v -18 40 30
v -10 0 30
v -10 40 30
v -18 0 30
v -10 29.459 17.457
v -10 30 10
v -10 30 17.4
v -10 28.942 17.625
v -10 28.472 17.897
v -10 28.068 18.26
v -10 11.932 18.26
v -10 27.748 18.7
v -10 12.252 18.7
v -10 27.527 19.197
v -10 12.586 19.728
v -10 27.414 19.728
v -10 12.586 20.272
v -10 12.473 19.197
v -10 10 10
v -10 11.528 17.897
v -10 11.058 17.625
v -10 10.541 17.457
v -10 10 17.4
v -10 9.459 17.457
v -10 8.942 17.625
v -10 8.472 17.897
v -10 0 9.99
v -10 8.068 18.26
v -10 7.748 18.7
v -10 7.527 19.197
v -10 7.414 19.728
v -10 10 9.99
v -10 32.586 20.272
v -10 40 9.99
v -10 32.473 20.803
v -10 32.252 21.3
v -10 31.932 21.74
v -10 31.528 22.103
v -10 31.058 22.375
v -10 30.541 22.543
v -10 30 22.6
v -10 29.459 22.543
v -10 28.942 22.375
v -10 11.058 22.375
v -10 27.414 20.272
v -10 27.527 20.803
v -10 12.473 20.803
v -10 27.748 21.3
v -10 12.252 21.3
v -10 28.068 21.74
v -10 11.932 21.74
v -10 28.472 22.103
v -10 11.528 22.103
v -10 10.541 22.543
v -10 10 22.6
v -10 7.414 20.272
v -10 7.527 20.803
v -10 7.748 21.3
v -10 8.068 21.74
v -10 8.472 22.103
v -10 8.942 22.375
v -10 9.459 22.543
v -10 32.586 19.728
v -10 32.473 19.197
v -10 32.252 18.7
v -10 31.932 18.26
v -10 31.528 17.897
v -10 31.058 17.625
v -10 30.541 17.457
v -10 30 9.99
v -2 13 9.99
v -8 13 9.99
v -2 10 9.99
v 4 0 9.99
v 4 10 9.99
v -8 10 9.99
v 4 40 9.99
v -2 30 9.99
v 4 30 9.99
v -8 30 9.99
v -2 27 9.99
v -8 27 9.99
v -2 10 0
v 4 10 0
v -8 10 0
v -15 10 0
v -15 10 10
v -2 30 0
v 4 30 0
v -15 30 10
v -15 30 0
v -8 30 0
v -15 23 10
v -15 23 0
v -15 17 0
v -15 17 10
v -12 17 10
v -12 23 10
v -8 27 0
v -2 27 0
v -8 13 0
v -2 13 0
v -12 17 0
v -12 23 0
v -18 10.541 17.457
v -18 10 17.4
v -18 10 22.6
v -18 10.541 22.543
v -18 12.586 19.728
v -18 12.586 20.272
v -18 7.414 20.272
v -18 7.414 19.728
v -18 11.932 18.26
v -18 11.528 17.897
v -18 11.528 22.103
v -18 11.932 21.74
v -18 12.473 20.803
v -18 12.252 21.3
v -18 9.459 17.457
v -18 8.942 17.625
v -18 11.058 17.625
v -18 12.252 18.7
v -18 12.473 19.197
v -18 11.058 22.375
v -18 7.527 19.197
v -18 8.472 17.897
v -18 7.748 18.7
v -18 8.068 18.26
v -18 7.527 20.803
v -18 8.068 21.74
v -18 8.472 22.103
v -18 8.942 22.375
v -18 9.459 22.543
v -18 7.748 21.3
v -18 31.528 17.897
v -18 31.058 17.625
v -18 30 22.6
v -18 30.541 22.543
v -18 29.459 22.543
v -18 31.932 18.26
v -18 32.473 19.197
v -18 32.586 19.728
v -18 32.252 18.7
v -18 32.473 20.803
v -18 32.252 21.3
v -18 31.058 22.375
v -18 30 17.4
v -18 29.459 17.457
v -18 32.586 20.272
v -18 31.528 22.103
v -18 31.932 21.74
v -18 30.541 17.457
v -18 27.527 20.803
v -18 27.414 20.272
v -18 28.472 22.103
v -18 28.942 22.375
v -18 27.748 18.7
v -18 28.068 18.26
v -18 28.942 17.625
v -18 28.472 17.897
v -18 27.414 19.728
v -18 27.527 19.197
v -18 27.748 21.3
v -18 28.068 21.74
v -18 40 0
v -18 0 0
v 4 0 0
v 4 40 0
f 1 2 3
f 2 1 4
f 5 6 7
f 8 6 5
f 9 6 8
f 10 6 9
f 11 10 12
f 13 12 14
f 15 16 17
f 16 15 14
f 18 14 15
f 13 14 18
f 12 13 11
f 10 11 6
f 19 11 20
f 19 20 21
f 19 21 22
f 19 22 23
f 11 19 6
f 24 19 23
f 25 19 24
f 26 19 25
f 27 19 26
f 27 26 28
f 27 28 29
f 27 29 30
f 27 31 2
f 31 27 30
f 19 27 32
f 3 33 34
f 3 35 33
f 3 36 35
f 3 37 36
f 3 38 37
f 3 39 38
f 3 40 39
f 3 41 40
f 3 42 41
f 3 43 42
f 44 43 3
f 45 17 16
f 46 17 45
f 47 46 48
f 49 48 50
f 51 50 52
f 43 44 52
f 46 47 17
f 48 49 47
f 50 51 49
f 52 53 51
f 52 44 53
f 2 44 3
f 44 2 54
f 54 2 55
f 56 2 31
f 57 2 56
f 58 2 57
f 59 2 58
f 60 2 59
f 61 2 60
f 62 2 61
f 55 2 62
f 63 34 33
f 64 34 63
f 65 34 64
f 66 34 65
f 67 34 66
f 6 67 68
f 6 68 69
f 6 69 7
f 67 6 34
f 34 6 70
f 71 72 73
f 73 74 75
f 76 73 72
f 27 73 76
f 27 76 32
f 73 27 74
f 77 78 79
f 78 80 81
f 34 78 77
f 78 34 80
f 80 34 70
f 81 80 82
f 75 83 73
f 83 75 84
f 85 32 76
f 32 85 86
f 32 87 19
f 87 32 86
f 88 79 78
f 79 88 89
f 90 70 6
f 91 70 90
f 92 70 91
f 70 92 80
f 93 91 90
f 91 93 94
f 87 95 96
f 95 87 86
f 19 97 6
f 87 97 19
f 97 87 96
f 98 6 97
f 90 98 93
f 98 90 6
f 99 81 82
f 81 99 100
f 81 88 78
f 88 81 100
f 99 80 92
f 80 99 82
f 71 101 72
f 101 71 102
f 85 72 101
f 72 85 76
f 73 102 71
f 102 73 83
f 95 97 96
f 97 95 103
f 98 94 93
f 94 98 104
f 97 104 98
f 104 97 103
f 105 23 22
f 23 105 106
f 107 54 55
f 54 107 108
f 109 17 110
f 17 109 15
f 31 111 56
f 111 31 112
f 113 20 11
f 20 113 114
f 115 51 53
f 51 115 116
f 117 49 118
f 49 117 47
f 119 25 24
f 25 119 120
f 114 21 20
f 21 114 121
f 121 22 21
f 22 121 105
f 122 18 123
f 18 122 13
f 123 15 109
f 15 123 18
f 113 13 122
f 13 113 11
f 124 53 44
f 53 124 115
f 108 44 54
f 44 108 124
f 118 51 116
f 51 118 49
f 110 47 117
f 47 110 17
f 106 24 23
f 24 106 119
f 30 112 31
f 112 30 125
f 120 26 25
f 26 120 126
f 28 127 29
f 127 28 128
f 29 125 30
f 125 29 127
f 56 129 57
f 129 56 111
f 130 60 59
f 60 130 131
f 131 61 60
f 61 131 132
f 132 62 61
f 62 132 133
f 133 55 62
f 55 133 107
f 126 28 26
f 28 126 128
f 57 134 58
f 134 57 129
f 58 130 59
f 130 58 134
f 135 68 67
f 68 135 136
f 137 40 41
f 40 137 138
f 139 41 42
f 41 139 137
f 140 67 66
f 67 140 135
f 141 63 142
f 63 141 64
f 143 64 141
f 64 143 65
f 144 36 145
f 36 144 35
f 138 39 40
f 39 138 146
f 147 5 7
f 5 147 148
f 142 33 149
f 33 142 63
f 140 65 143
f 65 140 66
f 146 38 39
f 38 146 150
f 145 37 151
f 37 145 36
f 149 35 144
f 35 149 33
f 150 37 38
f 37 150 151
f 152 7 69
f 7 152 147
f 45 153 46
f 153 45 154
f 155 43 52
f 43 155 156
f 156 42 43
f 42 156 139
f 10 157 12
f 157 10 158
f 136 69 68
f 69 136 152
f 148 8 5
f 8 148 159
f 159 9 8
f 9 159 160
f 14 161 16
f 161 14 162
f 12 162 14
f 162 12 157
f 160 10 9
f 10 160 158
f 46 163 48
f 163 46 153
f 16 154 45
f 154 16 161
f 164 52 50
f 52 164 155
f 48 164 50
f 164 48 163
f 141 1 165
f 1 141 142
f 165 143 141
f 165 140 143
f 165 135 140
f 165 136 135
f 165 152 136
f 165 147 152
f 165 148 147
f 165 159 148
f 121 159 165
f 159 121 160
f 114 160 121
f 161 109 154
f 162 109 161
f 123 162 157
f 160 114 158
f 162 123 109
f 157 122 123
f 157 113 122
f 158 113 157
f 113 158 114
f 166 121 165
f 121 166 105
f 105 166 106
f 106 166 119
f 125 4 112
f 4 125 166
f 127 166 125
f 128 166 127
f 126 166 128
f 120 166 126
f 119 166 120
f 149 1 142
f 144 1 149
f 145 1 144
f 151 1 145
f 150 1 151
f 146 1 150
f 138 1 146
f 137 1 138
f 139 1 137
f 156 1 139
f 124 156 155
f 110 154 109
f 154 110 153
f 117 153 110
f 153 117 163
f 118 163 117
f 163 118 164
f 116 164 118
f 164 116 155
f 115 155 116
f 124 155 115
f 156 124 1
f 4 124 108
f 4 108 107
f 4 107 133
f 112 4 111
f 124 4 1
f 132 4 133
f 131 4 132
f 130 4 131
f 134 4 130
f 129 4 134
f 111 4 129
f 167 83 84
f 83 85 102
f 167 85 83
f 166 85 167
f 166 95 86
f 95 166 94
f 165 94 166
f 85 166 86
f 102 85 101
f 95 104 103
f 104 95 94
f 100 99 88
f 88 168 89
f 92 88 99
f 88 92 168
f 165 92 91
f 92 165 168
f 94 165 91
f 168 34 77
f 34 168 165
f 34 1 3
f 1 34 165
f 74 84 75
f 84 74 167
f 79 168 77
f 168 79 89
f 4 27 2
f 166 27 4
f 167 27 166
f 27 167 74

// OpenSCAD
// file: inc/functions.scad
// PRUSA iteration3
// Functions used in many files
// GNU GPL v3
// Josef Průša <josefprusa@me.com>
// Václav 'ax' Hůla <axtheb@gmail.com>
// Vlnofka <>
// http://www.reprap.org/wiki/Prusa_Mendel
// http://github.com/josefprusa/Prusa3


module nut(d,h,horizontal=true){
    cornerdiameter =  (d / 2) / cos (180 / 6);
    cylinder(h = h, r = cornerdiameter, $fn = 6);
    if(horizontal){
        for(i = [1:6]){
            rotate([0,0,60*i]) translate([-cornerdiameter-0.2,0,0]) rotate([0,0,-45]) cube([2,2,h]);
        }
    }
}

module fillet(radius, height=100, $fn=0) {
    //this creates acutal fillet
    translate([-radius, -radius, -height / 2 - 0.02]) difference() {
        cube([radius * 2, radius * 2, height + 0.04]);
        if ($fn == 0 && (radius == 2 || radius == 3 || radius == 4)) {
            cylinder(r=radius, h=height + 0.04, $fn=4 * radius);
        } else {
            cylinder(r=radius, h=height + 0.04, $fn=$fn);
        }

    }
}

module cube_fillet(size, radius=-1, vertical=[3,3,3,3], top=[0,0,0,0], bottom=[0,0,0,0], center=false, $fn=0){
    //
    if (use_fillets == 1) {
        if (center) {
            cube_fillet_inside(size, radius, vertical, top, bottom, $fn);
        } else {
            translate([size[0]/2, size[1]/2, size[2]/2])
                cube_fillet_inside(size, radius, vertical, top, bottom, $fn);
        }
    } else {
        if (use_fillets == 2) {
            if (center) {
                cube_fillet_inside(size, radius, vertical, top, bottom, 4);
            } else {
                translate([size[0]/2, size[1]/2, size[2]/2])
                    cube_fillet_inside(size, radius, vertical, top, bottom, 4);
            }

        } else {
            cube(size, center);
        }
    }

}

module cube_negative_fillet(size, radius=-1, vertical=[3,3,3,3], top=[0,0,0,0], bottom=[0,0,0,0], $fn=0){

    j=[1,0,1,0];

    for (i=[0:3]) {
        if (radius > -1) {
            rotate([0, 0, 90*i]) translate([size[1-j[i]]/2, size[j[i]]/2, 0]) fillet(radius, size[2], $fn=$fn);
        } else {
            rotate([0, 0, 90*i]) translate([size[1-j[i]]/2, size[j[i]]/2, 0]) fillet(vertical[i], size[2], $fn=$fn);
        }
        rotate([90*i, -90, 0]) translate([size[2]/2, size[j[i]]/2, 0 ]) fillet(top[i], size[1-j[i]], $fn=$fn);
        rotate([90*(4-i), 90, 0]) translate([size[2]/2, size[j[i]]/2, 0]) fillet(bottom[i], size[1-j[i]], $fn=$fn);

    }
}

module cube_fillet_inside(size, radius=-1, vertical=[3,3,3,3], top=[0,0,0,0], bottom=[0,0,0,0], $fn=0){
    //makes CENTERED cube with round corners
    // if you give it radius, it will fillet vertical corners.
    //othervise use vertical, top, bottom arrays
    //when viewed from top, it starts in upper right corner (+x,+y quadrant) , goes counterclockwise
    //top/bottom fillet starts in direction of Y axis and goes CCW too


    if (radius == 0) {
        cube(size, center=true);
    } else {
        difference() {
            cube(size, center=true);
            cube_negative_fillet(size, radius, vertical, top, bottom, $fn);
        }
    }
}


module nema17(places=[1,1,1,1], size=15.5, h=10, holes=false, shadow=false, $fn=24){
    for (i=[0:3]) {
        if (places[i] == 1) {
            rotate([0, 0, 90*i]) translate([size, size, 0]) {
                if (holes) {
                    rotate([0, 0, -90*i])  translate([0,0,-10]) screw(r=1.7, slant=false, head_drop=13, $fn=$fn, h=h+12);
                } else {
                    rotate([0, 0, -90*i]) cylinder(h=h, r=5.5, $fn=$fn);
                }
            }
        }
    }
    if (shadow != false) {
        %translate ([0, 0, shadow+21+3]) cube([42,42,42], center = true);
    //flange
        %translate ([0, 0, shadow+21+3-21-1]) cylinder(r=11,h=2, center = true, $fn=20);
    //shaft
        %translate ([0, 0, shadow+21+3-21-7]) cylinder(r=2.5,h=14, center = true);
    }
}

module screw(h=20, r=2, r_head=3.5, head_drop=0, slant=i_am_box, poly=false, $fn=0){
    //makes screw with head
    //for substraction as screw hole
    if (poly) {
        cylinder_poly(h=h, r=r, $fn=$fn);
    } else {
        cylinder(h=h, r=r, $fn=$fn);
    }
    if (slant) {
        translate([0, 0, head_drop-0.01]) cylinder(h=r_head, r2=0, r1=r_head, $fn=$fn);
    }

    if (head_drop > 0) {
        translate([0, 0, -0.01]) cylinder(h=head_drop+0.01, r=r_head, $fn=$fn);
    }
}

module plate_screw(long=0) {
    if (i_am_box == 0) {
        translate([0, 0, -long]) screw(head_drop=14 + long, h=30 + long, r_head=3.6, r=1.7, $fn=24, slant=false);
    } else {
        translate([0, 0, -2 - long]) screw(head_drop=14 + long, h=30 + long, r_head=4.5, r=2, $fn=24, slant=true);
    }
}

//radius of the idler assembly (to surface that touches belt, ignoring guide walls)
function idler_assy_r_inner(idler_bearing) = (idler_bearing[0] / 2) + (6 * single_wall_width + 0.2) * idler_bearing[3];
//outer radius of the idler assembly (to smooth side of belt) 
function idler_assy_r_outer(idler_bearing) = idler_assy_r_inner(idler_bearing) + belt_thickness + 1;

module ext2020(l=20, teeth = [1, 1, 1, 1]) {
  translate([0,0,l/2])
  difference(){
    cube([20,20,l], center=true);
    if (teeth[0] == 1)
    translate([10-1.5,0,0])cube([3,6,l], center=true);
    if (teeth[1] == 1)
    translate([-10+1.5,0,0])cube([3,6,l], center=true);
    if (teeth[2] == 1)
    translate([0,10-1.5,0])cube([6,3,l], center=true);
    if (teeth[3] == 1)
    translate([0,-10+1.5,0])cube([6,3,l], center=true);
  }
}

module idler_assy(idler_bearing = [22, 7, 8, 1]) {

    //bearing axle
    translate([0,0,-1]) cylinder(h = 120, r=(idler_bearing[2] + 1) / 2, $fn=small_hole_segments, center=true);
    //bearing shadow
    %cylinder(h = idler_bearing[1], r=idler_bearing[0]/2, center=true);
    //belt shadow
    %cylinder(h = belt_width, r=idler_assy_r_outer(idler_bearing), center=true);

    cylinder(h = idler_width + 1, r=idler_assy_r_outer(idler_bearing) + 0.5, center=true);
}

module belt(len, side = 0){
    //belt. To be substracted from model
    //len is in +Z, smooth side in +X, Y centered
    translate([-0.5, 0, 0]) maketeeth(len);
    translate([0, -4.5, -0.01]) cube([belt_thickness, 9, len + 0.02]);
    if (side != 0) {
    translate([0, -4.5 + side, -0.01]) cube_fillet([belt_thickness, 9, len + 0.02], vertical = [3, 0, 0, 0]);
    }
}


module maketeeth(len){
    //Belt teeth. 
    for (i = [0 : len / belt_tooth_distance]) {
        translate([0, 0, i * belt_tooth_distance]) cube([2, 9, belt_tooth_distance * belt_tooth_ratio], center = true);
    }
}
// main file
use <inc/functions.scad>


// produce the bracket itself.
// bracket height shifts the bracket placement up/down. The default should
// raise the bed high enough to not be a problem
translate([0,0,30])mirror([1,0,1])yrail_mount(mount_thickness = 18, bracket_height = 5);

module tsection(bracket_height) {
  rotate([90,0,0]){
    ext2020(l=40);
  }
  translate([0,0,0])rotate([90,0,0])
  { translate([-10,-10,-5])cube([20.01,20,60]);ext2020(l=40); }
  translate([10,-(40/2),bracket_height])rotate([90,0,90])ext2020(l=40,teeth=[1,1,1,0]);
  translate([0,-(60/2),0])cylinder(r=2.6,h=20,$fn=30);
  translate([0,-(20/2),0])cylinder(r=2.6,h=20,$fn=30);
}

module yrail_mount(mount_thickness = 18, bracket_height = 5) {
  difference(){
    translate([0,0,10-14])cube([30,40,4+mount_thickness]);
    translate([10,40,0])tsection(bracket_height);
  }
}
